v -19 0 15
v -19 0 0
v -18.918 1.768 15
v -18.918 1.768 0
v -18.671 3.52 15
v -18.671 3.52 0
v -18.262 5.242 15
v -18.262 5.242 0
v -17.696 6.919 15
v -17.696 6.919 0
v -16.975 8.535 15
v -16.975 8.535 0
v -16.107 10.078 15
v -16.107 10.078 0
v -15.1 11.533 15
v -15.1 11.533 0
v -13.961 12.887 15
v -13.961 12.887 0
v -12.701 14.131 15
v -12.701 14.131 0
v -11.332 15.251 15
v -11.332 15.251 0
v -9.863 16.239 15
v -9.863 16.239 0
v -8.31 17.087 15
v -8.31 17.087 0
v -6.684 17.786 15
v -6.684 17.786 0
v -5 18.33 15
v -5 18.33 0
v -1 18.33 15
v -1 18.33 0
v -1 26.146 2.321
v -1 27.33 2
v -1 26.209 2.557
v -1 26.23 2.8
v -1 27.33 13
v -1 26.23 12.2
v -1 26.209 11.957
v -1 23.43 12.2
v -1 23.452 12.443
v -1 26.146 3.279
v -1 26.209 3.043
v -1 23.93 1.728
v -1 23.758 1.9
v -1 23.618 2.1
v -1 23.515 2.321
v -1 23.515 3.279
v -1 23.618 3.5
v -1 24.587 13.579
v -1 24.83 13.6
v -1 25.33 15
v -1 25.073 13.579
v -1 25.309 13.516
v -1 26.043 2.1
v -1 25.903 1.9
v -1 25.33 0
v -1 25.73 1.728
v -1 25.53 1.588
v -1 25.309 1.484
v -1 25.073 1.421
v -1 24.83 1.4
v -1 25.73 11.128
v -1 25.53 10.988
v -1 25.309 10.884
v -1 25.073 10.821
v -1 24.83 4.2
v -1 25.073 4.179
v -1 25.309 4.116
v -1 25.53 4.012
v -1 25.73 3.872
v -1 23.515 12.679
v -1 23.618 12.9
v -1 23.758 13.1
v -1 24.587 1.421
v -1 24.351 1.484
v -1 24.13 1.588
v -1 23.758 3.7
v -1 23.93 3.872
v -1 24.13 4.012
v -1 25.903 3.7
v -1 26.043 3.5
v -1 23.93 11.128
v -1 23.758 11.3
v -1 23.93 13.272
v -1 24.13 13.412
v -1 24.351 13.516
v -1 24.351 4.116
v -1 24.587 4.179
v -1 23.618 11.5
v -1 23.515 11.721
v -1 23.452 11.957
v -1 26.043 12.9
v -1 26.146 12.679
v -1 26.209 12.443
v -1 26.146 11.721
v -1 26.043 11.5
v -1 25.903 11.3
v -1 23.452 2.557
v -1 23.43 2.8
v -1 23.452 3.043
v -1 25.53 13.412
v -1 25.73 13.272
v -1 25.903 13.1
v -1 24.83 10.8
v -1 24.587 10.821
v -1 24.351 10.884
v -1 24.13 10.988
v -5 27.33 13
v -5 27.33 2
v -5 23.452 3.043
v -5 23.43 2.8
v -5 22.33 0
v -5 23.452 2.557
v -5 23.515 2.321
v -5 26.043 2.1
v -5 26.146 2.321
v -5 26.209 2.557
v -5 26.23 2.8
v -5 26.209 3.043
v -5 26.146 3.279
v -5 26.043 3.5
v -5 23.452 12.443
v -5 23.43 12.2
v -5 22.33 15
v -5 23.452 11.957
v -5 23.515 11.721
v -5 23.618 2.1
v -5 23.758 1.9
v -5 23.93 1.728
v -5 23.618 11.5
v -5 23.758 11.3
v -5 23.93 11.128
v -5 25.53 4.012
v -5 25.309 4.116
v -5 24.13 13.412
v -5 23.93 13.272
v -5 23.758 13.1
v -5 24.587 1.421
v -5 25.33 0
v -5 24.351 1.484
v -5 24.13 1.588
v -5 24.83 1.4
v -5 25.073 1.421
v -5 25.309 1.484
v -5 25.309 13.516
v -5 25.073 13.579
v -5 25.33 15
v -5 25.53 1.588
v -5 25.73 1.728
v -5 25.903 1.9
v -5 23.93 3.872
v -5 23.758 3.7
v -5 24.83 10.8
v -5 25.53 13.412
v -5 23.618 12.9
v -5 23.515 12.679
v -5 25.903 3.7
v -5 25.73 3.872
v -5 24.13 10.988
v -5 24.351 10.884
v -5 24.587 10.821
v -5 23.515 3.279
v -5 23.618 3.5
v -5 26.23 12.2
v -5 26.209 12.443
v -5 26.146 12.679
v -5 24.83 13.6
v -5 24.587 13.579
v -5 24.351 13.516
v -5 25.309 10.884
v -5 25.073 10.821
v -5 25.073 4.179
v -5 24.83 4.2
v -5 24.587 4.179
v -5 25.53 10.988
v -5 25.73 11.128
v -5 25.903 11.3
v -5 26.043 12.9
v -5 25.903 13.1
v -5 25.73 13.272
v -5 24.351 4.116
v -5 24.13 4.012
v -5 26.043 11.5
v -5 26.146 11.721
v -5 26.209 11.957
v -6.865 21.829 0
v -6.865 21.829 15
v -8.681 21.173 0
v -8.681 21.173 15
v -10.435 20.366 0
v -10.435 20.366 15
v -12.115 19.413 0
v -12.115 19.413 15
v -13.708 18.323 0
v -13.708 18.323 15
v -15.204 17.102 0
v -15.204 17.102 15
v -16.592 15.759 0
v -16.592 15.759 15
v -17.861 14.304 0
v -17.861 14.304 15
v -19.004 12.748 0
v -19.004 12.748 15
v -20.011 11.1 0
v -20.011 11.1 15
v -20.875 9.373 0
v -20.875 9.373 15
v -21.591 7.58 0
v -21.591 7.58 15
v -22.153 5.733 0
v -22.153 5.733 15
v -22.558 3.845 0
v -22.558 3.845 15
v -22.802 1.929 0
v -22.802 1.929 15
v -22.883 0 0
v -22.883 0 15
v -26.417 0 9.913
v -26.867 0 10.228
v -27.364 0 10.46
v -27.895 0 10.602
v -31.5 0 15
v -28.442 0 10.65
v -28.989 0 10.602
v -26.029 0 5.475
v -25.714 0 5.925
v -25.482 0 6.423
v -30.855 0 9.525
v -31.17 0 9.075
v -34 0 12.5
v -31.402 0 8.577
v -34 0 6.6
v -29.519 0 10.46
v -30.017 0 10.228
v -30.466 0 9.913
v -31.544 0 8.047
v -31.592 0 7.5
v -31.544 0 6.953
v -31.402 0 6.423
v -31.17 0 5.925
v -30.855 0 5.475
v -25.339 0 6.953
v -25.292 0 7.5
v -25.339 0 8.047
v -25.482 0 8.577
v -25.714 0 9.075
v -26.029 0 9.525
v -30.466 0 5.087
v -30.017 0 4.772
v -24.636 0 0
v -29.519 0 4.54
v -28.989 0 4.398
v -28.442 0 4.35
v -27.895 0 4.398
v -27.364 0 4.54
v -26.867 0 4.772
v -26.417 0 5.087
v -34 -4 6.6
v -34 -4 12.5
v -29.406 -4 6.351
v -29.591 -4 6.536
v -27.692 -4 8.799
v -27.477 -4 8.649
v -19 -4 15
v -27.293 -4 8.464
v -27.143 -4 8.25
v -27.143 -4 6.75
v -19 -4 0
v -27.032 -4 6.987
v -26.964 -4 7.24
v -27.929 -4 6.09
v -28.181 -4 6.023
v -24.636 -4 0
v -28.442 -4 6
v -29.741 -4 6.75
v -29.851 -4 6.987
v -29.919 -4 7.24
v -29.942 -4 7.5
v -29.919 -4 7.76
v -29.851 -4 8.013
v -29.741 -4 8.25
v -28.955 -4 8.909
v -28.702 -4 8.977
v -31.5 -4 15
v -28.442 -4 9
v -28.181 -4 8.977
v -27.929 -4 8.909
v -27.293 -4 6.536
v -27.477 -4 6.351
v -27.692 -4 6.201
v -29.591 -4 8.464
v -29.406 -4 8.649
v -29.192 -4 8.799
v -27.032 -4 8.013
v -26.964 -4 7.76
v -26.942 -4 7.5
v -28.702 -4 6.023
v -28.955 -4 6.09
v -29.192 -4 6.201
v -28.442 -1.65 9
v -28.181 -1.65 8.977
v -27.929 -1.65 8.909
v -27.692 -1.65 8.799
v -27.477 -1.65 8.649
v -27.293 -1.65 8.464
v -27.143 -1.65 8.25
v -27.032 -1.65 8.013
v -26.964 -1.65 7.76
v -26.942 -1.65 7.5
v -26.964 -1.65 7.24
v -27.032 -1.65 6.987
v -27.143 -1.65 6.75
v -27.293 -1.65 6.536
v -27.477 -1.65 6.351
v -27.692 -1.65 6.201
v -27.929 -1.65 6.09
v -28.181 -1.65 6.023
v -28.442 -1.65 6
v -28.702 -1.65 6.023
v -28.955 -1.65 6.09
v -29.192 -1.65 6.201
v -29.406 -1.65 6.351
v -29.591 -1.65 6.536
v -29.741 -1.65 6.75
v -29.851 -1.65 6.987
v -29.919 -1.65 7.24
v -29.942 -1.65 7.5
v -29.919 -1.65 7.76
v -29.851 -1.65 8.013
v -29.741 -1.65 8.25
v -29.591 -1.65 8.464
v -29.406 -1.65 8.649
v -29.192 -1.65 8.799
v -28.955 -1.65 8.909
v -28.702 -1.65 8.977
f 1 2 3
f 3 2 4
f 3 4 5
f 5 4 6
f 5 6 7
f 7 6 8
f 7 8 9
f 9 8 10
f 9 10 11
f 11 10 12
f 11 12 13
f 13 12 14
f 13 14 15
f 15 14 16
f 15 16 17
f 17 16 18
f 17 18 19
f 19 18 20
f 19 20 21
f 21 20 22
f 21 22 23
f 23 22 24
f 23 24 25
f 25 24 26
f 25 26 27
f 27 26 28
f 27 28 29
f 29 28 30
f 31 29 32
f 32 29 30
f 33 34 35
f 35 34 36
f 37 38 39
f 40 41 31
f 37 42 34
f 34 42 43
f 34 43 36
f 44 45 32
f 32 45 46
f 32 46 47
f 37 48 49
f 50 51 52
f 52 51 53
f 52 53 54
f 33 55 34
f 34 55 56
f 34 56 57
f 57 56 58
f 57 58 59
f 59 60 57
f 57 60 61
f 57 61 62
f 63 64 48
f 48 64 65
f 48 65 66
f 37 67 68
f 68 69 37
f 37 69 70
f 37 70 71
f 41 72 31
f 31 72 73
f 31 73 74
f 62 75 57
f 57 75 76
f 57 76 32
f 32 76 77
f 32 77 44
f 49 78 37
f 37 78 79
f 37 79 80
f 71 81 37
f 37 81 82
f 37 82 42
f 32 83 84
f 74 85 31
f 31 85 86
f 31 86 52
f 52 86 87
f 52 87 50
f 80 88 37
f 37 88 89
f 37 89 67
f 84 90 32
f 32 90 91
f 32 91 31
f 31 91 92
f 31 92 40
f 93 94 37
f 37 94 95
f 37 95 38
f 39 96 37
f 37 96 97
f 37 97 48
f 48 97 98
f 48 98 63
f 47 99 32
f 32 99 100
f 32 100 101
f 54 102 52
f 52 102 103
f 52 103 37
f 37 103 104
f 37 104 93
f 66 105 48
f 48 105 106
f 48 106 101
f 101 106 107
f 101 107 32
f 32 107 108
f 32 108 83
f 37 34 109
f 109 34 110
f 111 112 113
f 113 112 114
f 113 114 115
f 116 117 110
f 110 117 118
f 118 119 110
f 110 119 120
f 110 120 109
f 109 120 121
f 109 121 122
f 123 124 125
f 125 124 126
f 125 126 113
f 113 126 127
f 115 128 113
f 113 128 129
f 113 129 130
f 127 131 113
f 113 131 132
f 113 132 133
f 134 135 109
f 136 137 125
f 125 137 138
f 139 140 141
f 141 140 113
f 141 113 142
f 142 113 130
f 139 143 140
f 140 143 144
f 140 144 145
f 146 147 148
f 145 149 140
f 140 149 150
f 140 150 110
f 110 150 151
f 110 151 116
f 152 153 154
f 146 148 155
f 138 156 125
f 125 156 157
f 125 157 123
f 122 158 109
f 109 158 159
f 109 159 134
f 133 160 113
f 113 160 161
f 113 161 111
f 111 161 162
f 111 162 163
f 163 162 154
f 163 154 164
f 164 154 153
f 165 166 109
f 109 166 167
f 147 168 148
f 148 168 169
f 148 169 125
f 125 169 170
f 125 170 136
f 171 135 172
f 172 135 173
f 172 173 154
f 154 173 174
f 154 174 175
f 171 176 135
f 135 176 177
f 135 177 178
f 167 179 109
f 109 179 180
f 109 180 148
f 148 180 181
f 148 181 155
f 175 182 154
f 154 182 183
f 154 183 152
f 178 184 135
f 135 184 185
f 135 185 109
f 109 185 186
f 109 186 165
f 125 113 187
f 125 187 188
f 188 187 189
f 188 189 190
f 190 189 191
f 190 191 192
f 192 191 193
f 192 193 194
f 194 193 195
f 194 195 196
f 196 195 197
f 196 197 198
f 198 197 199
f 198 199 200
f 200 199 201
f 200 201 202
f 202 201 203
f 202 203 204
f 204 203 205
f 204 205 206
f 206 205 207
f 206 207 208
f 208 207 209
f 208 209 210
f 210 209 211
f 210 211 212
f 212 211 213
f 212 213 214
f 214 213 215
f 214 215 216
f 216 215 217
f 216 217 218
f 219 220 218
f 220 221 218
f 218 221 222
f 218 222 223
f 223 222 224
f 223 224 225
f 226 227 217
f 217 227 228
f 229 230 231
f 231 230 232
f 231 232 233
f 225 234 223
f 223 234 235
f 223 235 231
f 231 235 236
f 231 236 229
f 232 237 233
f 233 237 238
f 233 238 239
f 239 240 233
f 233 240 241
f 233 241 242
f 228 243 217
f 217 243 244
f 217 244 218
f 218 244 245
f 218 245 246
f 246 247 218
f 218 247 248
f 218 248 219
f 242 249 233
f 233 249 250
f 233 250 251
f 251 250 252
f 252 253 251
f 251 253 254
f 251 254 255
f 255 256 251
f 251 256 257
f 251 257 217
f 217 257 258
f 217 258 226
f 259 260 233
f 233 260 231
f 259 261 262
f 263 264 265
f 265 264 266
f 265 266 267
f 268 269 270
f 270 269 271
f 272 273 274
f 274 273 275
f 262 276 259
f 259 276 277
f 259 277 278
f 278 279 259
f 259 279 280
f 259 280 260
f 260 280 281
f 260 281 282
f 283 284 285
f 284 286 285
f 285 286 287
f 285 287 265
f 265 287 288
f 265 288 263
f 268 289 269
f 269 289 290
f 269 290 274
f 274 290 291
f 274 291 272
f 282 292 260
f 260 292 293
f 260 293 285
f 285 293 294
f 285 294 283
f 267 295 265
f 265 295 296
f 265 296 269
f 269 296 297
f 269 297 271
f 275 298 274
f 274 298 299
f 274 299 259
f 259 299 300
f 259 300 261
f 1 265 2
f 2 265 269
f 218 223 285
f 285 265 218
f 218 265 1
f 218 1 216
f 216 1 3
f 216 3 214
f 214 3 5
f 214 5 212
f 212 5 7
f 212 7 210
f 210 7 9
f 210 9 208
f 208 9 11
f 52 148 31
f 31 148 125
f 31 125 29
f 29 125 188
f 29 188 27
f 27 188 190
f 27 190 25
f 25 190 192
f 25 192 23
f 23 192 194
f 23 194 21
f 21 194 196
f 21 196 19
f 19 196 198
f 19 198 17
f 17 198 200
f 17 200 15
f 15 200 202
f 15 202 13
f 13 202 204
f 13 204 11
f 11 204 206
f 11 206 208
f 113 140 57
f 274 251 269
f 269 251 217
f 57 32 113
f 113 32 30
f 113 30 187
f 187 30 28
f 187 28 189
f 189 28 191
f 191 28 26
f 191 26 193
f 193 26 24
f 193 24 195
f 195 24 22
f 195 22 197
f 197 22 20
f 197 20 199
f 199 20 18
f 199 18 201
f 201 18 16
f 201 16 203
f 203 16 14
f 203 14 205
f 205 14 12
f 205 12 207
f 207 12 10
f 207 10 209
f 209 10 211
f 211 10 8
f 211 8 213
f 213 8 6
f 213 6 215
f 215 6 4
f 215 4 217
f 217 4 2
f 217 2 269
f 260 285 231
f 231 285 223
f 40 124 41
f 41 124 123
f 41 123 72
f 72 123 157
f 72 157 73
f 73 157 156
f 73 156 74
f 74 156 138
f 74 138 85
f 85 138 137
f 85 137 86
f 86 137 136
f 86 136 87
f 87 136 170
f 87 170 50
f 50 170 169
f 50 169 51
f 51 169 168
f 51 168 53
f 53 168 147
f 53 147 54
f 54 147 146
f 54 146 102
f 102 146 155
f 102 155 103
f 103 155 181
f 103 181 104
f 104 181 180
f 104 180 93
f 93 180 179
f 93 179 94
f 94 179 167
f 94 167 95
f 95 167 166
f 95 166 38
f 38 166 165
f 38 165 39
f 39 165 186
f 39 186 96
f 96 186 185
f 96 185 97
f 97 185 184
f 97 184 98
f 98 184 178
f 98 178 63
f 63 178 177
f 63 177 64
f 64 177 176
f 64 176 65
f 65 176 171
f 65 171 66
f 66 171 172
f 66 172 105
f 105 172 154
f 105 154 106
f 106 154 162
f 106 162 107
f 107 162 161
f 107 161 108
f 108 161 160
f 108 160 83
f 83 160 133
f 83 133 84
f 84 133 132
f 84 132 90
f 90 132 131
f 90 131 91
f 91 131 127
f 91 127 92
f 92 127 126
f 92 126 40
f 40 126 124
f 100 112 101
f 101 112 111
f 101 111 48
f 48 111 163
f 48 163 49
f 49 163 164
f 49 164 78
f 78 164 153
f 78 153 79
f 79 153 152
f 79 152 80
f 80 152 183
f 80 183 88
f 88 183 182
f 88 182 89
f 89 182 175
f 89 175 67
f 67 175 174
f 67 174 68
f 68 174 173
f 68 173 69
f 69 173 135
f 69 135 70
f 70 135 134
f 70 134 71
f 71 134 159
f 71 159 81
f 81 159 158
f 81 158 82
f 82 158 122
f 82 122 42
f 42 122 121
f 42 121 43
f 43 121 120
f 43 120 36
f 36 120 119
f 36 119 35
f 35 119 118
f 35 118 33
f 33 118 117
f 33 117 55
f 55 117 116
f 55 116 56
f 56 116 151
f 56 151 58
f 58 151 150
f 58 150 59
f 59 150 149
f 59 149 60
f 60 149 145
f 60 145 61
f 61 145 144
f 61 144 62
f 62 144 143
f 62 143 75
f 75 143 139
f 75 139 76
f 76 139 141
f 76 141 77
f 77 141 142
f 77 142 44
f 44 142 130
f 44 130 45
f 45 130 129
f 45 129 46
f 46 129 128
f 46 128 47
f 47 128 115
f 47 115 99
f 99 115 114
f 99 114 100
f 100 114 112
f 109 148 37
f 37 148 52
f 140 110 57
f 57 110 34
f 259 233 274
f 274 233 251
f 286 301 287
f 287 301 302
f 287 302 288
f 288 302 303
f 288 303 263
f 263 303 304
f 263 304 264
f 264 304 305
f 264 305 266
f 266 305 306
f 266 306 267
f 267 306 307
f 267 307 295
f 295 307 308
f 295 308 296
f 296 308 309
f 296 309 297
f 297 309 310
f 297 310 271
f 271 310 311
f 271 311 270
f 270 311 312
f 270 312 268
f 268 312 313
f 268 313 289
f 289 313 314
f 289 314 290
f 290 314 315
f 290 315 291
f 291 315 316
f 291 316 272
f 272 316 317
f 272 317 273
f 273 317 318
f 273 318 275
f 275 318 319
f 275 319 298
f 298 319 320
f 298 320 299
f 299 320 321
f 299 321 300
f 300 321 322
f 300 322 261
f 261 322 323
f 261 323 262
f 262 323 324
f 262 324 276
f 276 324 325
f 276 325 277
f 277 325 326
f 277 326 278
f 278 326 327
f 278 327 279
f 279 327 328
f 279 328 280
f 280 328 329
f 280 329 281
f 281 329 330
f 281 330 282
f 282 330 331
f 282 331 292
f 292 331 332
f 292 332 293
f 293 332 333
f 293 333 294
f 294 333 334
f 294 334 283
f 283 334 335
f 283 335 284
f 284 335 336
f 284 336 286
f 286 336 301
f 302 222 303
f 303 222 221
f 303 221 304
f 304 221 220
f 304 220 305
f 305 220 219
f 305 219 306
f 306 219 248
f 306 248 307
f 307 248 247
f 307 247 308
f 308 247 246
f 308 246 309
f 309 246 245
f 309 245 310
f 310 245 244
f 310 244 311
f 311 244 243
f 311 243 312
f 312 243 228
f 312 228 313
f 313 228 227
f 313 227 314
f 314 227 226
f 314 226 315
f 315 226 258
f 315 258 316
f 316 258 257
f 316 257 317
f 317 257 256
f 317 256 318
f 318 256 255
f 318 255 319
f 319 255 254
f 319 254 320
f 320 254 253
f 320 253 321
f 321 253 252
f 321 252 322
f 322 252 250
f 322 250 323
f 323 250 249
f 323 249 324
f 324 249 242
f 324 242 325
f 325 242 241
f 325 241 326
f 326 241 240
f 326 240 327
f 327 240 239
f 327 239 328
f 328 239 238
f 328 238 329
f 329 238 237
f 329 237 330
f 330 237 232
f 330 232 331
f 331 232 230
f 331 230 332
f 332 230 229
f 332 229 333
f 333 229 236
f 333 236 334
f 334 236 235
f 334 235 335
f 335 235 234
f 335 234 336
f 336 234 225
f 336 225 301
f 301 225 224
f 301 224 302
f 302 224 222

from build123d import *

# Parameters (mm, degrees)
BOSS_EXTRUDE1_DEPTH                             = 15
CHAMFER1_SIZE                                   = 2.5
SKETCH2_R                                       = 1.4
CUT_EXTRUDE1_DEPTH                              = 15
CHAMFER2_SIZE                                   = 2
SKETCH3_R                                       = 1.4
CUT_EXTRUDE2_DEPTH                              = 47.129659115
CUT_EXTRUDE3_DEPTH                              = 25
CSK_FOR_M3_FLAT_HEAD_MACHINE_SCREW1_D           = 3
CSK_FOR_M3_FLAT_HEAD_MACHINE_SCREW1_DEPTH       = 31.098709071
CSK_FOR_M3_FLAT_HEAD_MACHINE_SCREW1_CSINK_D     = 6.3
CSK_FOR_M3_FLAT_HEAD_MACHINE_SCREW1_CSINK_ANGLE = 90
CSK_FOR_M3_FLAT_HEAD_MACHINE_SCREW1_TIP         = 0.901290929


with BuildPart() as part:
    # Sketch1 → Boss-Extrude1 (new body)
    with BuildSketch(Plane.XY):
        with BuildLine():
            Line((-19, 0), (-19, -4))
            Line((-19, -4), (-34, -4))
            Line((-34, -4), (-34, 0))
            Line((-34, 0), (-22.883234523, 0))
            ThreePointArc((-22.883234523, 0), (-17.861391251, 14.304304416), (-5, 22.33030278))
            Line((-5, 22.33030278), (-5, 27.33030278))
            Line((-5, 27.33030278), (-1, 27.33030278))
            Line((-1, 27.33030278), (-1, 18.33030278))
            Line((-1, 18.33030278), (-5, 18.33030278))
            ThreePointArc((-5, 18.33030278), (-15.099668871, 11.532562595), (-19, 0))
        make_face()
    extrude(amount=BOSS_EXTRUDE1_DEPTH)

    # Chamfer1
    chamfer1_edges = [part.edges().sort_by_distance(p)[0] for p in [
        (-34, -2, 0),
        (-34, -2, 15),
    ]]
    chamfer(chamfer1_edges, length=CHAMFER1_SIZE)

    # Sketch2 → Cut-Extrude1 (cut)
    with BuildSketch(Plane.ZY.offset(5)):
        with Locations(Location((2.8, 24.83030278, 0), (0, 0, 270))):
            Circle(SKETCH2_R)
        with Locations(Location((12.2, 24.83030278, 0), (0, 0, 270))):
            Circle(SKETCH2_R)
    extrude(amount=-CUT_EXTRUDE1_DEPTH, mode=Mode.SUBTRACT)

    # Chamfer2
    chamfer2_edges = [part.edges().sort_by_distance(p)[0] for p in [
        (-3, 27.33030278, 0),
        (-3, 27.33030278, 15),
    ]]
    chamfer(chamfer2_edges, length=CHAMFER2_SIZE)

    # Sketch3 → Cut-Extrude2 (cut, through all)
    with BuildSketch(Plane(origin=(0, 0, 0), x_dir=(1, 0, 0), z_dir=(0, 1, 0))):
        with Locations(Location((-28.441617262, -7.5, 0), (0, 0, 270))):
            Circle(SKETCH3_R)
    extrude(amount=-CUT_EXTRUDE2_DEPTH, mode=Mode.SUBTRACT)

    # Sketch4 → Cut-Extrude3 (cut)
    with BuildSketch(Plane.XZ.offset(4)):
        Polygon((-24.636069701, 0), (-34, 6.600391812), (-34, 2.5), (-31.5, 0), align=None)
    extrude(amount=-CUT_EXTRUDE3_DEPTH, mode=Mode.SUBTRACT)

    # CSK for M3 Flat Head Machine Screw1
    with Locations(Plane(origin=(0, 0, 0), x_dir=(1, 0, 0), z_dir=(0, 1, 0))):
        with Locations((-28.441617262, -7.5)):
            CounterSinkHole(CSK_FOR_M3_FLAT_HEAD_MACHINE_SCREW1_D / 2, CSK_FOR_M3_FLAT_HEAD_MACHINE_SCREW1_CSINK_D / 2, depth=CSK_FOR_M3_FLAT_HEAD_MACHINE_SCREW1_DEPTH, counter_sink_angle=CSK_FOR_M3_FLAT_HEAD_MACHINE_SCREW1_CSINK_ANGLE)
            with Locations((0, 0, -(CSK_FOR_M3_FLAT_HEAD_MACHINE_SCREW1_DEPTH + CSK_FOR_M3_FLAT_HEAD_MACHINE_SCREW1_TIP / 2))):  # 118° drill point
                Cone(0, CSK_FOR_M3_FLAT_HEAD_MACHINE_SCREW1_D / 2, CSK_FOR_M3_FLAT_HEAD_MACHINE_SCREW1_TIP, mode=Mode.SUBTRACT)


solid = part.part
